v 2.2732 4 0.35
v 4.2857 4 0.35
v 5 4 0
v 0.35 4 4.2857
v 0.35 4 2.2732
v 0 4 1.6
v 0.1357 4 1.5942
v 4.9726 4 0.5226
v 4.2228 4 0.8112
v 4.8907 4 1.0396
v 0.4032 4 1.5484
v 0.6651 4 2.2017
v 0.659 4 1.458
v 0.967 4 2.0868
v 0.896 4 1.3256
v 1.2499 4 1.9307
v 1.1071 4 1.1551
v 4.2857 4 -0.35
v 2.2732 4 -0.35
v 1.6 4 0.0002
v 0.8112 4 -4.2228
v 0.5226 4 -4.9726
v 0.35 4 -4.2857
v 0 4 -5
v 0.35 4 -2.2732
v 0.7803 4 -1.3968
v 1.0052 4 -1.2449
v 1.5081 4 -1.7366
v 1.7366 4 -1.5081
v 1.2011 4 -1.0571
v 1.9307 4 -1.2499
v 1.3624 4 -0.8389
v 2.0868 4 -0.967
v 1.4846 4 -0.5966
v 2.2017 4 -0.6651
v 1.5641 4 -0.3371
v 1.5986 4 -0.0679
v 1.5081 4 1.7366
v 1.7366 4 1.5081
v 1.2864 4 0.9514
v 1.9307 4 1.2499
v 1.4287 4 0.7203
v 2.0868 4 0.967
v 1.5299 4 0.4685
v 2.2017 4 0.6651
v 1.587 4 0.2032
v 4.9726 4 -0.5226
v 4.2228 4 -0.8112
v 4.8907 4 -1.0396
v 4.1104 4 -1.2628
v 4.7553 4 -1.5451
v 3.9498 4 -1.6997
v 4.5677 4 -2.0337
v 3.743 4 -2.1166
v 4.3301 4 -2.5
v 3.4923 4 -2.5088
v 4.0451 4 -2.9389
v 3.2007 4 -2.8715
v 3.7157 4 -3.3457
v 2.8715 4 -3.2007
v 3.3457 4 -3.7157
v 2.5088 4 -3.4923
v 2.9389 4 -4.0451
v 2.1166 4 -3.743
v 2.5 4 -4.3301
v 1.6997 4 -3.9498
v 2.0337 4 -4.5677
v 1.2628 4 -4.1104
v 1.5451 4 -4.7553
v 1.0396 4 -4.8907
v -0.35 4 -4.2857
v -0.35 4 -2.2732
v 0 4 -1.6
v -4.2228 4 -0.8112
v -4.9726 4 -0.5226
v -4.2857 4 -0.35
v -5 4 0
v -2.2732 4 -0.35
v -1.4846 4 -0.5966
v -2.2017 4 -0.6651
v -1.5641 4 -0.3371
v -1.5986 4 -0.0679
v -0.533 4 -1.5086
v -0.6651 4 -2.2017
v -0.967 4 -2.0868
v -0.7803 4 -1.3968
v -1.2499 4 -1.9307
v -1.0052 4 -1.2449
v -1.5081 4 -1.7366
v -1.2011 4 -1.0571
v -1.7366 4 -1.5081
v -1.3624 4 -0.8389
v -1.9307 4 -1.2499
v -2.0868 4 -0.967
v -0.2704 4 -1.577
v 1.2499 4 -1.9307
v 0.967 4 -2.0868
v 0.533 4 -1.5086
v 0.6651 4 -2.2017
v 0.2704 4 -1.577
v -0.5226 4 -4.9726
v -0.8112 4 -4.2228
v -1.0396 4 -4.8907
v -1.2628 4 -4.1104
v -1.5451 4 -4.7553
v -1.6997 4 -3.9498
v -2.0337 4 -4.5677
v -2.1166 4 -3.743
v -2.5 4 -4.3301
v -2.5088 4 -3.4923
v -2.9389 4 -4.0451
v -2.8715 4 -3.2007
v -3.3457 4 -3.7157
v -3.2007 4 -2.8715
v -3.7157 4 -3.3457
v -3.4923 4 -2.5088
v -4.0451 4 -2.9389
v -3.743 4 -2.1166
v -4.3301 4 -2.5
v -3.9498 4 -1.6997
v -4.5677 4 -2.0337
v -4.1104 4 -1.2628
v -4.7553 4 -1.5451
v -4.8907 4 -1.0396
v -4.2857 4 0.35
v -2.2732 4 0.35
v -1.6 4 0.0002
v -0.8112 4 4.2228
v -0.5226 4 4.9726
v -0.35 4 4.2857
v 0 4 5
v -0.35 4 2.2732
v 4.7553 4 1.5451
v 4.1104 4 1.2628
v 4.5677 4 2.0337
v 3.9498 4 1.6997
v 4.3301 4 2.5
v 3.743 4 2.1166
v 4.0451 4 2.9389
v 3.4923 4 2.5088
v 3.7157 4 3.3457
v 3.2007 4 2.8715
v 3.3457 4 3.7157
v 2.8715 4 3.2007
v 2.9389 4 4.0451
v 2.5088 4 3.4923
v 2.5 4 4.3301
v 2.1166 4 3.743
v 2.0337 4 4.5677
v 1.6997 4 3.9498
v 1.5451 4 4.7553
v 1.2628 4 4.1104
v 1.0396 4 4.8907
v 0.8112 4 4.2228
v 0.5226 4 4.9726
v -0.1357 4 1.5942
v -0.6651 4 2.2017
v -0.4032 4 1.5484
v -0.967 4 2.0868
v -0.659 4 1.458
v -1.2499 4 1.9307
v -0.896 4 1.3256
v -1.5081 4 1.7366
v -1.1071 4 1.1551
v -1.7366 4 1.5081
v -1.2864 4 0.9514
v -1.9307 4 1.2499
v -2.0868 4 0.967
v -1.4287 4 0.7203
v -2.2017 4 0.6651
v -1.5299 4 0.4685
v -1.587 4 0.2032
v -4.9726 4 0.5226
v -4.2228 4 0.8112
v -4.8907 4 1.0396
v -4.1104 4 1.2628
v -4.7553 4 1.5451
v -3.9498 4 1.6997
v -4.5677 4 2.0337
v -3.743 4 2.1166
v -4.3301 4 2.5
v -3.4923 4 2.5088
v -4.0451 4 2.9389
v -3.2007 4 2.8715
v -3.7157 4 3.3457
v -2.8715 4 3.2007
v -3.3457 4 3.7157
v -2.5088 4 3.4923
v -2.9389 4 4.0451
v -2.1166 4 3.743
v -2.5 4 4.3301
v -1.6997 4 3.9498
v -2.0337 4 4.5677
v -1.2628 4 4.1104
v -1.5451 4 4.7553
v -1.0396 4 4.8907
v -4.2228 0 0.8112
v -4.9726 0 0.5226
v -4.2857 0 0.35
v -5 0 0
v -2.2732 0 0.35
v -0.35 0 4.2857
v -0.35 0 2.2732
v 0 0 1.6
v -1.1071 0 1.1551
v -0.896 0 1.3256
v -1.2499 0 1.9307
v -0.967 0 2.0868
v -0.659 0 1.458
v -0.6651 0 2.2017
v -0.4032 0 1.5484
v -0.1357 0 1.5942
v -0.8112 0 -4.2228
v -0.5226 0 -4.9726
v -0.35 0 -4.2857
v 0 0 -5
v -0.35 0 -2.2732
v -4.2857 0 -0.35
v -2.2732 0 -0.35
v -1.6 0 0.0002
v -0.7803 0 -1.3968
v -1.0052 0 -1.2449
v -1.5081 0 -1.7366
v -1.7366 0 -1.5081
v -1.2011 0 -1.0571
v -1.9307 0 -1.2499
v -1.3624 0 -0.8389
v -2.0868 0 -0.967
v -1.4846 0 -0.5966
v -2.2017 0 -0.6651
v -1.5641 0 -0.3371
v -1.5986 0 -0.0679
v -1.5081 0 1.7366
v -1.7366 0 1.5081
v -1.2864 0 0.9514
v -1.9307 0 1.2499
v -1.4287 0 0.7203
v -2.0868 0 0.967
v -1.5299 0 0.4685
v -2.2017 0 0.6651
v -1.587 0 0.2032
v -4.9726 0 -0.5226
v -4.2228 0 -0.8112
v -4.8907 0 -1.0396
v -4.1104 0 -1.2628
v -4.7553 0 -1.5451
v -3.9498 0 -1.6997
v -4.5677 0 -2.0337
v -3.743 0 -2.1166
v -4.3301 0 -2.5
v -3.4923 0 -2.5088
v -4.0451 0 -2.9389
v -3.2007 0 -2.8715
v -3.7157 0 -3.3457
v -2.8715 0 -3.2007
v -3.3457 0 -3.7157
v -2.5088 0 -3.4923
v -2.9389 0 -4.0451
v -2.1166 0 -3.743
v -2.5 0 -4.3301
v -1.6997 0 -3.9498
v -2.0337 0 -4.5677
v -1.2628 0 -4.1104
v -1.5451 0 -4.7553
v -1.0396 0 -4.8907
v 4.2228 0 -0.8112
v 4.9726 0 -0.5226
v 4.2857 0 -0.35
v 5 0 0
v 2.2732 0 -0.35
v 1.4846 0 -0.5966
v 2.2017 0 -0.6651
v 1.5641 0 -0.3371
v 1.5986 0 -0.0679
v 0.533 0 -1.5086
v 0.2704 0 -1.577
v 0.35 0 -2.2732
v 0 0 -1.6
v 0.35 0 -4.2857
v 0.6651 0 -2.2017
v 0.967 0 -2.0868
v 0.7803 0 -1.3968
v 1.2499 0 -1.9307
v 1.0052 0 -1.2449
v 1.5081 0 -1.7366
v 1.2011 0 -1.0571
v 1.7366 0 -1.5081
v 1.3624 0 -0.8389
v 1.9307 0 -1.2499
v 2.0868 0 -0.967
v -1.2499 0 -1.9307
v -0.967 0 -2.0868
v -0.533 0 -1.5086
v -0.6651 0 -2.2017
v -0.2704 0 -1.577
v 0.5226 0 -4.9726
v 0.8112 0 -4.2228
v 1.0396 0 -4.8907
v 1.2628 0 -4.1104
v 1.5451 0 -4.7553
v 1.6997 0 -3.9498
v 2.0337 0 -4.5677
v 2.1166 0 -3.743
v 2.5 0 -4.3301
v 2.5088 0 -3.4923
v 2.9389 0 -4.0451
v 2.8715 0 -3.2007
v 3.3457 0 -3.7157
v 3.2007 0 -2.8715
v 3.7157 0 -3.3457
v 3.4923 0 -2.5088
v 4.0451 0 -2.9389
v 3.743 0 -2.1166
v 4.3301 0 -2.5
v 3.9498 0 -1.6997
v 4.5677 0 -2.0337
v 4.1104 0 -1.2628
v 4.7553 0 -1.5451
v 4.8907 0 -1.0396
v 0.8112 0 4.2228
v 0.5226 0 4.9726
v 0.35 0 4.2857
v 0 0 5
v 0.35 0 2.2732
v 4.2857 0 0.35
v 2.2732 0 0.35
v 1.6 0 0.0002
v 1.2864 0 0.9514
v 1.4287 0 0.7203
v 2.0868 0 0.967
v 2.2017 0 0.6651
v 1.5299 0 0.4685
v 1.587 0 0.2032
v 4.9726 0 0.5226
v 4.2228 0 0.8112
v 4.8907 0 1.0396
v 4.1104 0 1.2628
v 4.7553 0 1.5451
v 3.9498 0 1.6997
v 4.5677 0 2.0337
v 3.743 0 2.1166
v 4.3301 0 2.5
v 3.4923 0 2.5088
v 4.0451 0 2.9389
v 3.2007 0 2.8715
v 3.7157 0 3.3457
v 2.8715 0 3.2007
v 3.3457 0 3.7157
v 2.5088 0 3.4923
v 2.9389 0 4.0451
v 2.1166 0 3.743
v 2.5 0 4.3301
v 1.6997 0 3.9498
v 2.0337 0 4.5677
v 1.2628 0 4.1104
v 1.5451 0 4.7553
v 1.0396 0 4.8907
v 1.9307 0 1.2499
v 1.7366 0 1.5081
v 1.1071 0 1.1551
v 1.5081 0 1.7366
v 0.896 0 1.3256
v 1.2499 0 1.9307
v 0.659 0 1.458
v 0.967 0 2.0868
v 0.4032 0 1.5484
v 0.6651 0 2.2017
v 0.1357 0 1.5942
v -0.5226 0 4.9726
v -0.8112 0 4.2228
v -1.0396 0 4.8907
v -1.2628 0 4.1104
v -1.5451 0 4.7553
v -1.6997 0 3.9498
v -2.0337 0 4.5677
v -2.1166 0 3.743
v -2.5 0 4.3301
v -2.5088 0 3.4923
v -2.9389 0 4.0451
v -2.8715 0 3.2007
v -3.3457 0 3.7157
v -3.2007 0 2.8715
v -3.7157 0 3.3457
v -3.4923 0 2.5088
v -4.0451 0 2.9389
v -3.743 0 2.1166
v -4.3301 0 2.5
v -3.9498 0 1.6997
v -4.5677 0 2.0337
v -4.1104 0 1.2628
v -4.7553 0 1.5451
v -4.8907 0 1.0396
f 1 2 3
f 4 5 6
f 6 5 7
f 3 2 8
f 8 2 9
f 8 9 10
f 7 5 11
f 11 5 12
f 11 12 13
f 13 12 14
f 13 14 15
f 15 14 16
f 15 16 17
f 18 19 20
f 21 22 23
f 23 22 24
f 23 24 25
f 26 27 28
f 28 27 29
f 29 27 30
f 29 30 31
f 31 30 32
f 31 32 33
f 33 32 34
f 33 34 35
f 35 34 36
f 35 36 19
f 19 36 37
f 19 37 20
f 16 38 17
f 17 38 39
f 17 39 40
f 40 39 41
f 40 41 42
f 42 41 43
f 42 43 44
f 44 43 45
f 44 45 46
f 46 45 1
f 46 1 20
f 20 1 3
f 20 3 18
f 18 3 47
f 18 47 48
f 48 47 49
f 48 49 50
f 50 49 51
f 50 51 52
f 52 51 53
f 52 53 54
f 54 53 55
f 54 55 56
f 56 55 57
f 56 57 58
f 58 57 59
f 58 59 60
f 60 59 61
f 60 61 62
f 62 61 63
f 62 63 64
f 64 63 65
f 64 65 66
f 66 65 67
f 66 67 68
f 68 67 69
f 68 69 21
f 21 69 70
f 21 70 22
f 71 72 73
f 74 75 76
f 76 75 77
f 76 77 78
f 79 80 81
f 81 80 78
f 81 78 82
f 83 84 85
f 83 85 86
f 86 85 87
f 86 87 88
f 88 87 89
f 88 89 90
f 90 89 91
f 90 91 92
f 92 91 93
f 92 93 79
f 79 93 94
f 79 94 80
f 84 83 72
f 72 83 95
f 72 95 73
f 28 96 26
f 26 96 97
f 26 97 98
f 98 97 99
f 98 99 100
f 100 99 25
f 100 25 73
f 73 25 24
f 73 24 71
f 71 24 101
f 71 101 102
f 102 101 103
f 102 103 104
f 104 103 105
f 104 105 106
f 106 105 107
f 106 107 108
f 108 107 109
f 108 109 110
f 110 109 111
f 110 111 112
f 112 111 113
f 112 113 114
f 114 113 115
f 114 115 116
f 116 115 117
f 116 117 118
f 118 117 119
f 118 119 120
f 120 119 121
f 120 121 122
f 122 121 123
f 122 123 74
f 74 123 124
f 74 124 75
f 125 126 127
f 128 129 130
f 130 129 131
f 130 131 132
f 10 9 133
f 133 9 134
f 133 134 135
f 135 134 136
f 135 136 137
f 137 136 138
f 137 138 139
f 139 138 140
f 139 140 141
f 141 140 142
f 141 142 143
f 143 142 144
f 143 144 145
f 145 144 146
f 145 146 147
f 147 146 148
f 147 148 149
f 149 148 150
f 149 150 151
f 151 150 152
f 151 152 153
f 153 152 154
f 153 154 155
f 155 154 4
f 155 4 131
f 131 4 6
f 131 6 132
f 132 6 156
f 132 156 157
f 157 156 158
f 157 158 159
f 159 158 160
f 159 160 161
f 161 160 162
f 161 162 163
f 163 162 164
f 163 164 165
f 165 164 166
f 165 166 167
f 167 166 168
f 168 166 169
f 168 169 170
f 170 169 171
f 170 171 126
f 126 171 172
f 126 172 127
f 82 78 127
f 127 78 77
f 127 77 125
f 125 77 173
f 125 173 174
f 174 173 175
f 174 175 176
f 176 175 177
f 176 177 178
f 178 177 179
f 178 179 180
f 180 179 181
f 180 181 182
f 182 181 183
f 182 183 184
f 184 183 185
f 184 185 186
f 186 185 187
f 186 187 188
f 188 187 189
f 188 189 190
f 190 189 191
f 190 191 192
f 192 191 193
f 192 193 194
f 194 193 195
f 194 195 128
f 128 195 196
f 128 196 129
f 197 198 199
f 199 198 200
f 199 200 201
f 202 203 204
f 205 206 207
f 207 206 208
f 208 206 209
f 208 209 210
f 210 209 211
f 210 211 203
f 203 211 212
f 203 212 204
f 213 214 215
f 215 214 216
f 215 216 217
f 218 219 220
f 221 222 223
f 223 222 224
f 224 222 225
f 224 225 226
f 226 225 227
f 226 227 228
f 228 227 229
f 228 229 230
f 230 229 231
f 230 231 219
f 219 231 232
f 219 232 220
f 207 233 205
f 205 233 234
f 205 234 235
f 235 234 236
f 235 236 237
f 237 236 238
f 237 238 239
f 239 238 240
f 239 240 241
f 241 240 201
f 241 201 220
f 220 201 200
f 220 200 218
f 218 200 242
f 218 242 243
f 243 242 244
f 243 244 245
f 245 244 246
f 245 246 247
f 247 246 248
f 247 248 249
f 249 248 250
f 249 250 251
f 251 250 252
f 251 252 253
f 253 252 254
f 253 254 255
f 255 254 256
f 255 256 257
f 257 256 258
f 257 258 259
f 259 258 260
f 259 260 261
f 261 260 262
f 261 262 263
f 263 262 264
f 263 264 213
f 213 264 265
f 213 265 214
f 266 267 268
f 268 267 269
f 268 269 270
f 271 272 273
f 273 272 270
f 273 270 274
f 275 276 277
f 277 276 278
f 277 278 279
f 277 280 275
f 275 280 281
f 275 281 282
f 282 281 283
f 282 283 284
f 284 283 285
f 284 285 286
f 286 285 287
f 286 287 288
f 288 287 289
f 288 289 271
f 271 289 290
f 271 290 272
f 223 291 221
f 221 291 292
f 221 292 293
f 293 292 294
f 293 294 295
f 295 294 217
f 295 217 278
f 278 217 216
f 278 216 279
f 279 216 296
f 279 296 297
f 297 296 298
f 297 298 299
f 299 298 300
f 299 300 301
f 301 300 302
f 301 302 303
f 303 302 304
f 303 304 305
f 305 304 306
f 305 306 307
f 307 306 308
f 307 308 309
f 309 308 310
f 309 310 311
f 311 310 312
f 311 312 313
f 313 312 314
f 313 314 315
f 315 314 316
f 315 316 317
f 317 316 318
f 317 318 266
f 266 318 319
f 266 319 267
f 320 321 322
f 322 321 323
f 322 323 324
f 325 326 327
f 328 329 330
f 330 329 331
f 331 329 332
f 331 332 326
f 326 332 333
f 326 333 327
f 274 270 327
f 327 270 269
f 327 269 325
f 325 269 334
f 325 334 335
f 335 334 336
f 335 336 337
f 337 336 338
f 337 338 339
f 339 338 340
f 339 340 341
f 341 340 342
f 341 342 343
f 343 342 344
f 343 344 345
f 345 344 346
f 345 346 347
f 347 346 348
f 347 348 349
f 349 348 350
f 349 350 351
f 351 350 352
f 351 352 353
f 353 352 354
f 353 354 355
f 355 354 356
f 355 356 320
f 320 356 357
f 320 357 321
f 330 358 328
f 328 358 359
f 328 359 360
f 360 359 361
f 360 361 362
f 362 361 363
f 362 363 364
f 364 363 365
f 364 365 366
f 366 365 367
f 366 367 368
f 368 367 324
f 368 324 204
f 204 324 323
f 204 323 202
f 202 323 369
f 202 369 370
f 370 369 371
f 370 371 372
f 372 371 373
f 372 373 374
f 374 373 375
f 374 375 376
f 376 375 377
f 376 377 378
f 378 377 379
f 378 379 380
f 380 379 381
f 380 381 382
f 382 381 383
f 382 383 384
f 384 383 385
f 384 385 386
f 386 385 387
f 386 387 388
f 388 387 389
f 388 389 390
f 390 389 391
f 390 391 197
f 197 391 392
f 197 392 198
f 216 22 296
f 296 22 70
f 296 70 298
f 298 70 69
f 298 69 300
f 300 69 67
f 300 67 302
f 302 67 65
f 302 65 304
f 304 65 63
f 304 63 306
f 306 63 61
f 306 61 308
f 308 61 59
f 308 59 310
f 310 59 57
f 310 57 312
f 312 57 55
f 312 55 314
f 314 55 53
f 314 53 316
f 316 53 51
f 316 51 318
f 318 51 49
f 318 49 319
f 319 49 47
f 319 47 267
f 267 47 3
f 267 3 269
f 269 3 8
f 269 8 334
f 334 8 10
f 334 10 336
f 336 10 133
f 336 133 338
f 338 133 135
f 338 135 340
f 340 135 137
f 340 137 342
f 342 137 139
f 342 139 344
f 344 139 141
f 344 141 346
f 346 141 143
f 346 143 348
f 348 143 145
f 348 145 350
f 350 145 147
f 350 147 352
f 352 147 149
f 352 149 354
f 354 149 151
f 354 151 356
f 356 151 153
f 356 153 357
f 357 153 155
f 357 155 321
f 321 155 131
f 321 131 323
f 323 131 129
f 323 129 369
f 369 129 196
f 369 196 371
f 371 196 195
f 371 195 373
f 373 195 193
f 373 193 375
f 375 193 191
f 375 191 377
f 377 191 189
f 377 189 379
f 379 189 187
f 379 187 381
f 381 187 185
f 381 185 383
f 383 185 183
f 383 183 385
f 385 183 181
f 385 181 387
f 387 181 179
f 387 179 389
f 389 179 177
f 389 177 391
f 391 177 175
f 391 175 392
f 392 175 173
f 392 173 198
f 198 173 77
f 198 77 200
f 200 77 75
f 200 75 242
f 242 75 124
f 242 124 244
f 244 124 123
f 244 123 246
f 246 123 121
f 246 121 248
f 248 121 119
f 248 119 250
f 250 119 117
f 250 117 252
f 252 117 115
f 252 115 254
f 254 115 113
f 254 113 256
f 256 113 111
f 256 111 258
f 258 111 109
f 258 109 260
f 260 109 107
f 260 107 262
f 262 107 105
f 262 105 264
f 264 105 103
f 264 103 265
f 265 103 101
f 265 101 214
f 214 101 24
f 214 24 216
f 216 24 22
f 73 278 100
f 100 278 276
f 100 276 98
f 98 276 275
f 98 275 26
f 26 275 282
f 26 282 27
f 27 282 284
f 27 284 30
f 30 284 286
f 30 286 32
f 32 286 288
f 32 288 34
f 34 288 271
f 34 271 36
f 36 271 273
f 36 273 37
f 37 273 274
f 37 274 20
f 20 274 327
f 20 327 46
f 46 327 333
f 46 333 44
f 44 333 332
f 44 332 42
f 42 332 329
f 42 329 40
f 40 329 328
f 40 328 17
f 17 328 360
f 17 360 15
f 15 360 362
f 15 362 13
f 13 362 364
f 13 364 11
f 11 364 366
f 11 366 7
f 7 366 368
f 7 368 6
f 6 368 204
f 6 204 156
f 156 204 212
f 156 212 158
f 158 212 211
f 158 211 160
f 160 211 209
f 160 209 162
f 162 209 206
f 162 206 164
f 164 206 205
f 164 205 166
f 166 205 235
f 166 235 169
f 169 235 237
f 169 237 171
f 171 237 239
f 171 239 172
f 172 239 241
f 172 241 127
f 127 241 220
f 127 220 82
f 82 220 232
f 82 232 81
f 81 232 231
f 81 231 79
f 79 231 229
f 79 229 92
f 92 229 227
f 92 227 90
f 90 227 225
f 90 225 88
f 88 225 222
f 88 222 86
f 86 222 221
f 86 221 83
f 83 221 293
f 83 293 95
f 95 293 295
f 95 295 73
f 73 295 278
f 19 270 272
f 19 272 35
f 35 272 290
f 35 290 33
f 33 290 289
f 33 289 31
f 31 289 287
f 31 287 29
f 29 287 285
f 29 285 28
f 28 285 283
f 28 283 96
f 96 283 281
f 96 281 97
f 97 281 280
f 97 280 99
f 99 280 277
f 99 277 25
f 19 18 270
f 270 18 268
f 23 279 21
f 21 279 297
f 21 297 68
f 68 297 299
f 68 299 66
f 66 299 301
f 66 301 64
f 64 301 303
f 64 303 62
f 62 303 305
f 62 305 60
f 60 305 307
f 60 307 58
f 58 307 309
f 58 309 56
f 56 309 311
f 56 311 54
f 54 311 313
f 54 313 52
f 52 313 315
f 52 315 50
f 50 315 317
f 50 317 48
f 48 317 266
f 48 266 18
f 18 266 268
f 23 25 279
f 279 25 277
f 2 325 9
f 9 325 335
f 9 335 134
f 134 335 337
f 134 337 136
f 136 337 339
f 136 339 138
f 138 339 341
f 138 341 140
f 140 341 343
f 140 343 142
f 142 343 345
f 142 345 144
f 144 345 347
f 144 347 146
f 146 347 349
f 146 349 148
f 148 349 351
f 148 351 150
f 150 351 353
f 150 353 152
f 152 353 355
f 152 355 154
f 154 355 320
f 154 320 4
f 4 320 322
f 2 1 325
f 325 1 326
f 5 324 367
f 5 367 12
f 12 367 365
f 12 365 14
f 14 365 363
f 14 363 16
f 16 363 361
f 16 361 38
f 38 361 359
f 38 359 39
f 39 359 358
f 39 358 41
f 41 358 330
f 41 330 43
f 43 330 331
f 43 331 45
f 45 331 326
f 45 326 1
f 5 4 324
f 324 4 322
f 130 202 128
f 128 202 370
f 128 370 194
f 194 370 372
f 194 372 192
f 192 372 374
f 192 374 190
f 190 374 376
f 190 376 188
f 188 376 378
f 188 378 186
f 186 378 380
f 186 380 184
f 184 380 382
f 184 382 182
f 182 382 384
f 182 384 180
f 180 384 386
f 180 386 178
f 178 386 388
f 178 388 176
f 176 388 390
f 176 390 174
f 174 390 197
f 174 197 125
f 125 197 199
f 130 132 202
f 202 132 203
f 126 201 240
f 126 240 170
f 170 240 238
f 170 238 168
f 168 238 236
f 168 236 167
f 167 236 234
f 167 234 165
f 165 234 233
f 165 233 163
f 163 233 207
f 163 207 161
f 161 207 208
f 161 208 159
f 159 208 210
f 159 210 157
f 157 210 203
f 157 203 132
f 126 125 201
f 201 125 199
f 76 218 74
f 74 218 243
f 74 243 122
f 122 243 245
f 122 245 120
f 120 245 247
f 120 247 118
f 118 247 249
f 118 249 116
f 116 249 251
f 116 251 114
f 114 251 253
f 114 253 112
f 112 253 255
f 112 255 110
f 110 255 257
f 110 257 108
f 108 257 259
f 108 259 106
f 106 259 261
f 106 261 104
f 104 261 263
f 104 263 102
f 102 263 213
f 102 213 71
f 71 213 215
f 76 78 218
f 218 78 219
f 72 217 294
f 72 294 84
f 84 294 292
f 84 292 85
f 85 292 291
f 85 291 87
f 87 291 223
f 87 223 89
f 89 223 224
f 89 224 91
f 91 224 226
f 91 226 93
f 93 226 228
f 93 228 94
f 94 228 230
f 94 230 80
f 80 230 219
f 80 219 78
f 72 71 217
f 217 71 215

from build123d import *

# Parameters (mm, degrees)
SKETCH_1_R      = 5
SKETCH_1_R_2    = 1.6
EXTRUDE_1_DEPTH = 4


with BuildPart() as part:
    # 草图1 → 凸台-拉伸1 (new body)
    with BuildSketch(Plane(origin=(0, 0, 0), x_dir=(1, 0, 0), z_dir=(0, 1, 0))):
        with Locations(Location((0, 0, 0), (0, 0, 270))):
            Circle(SKETCH_1_R)
        with Locations(Location((0, 0, 0), (0, 0, 270))):
            Circle(SKETCH_1_R_2, mode=Mode.SUBTRACT)
        with BuildLine():
            Line((2.273213584, 0.35), (4.285732143, 0.35))
            ThreePointArc((4.285732143, 0.35), (3.040559159, 3.040559159), (0.35, 4.285732143))
            Line((0.35, 4.285732143), (0.35, 2.273213584))
            ThreePointArc((0.35, 2.273213584), (1.626345597, 1.626345597), (2.273213584, 0.35))
        make_face(mode=Mode.SUBTRACT)
        with BuildLine():
            Line((4.285732143, -0.35), (2.273213584, -0.35))
            ThreePointArc((2.273213584, -0.35), (1.626345597, -1.626345597), (0.35, -2.273213584))
            Line((0.35, -2.273213584), (0.35, -4.285732143))
            ThreePointArc((0.35, -4.285732143), (3.040559159, -3.040559159), (4.285732143, -0.35))
        make_face(mode=Mode.SUBTRACT)
        with BuildLine():
            Line((-0.35, -4.285732143), (-0.35, -2.273213584))
            ThreePointArc((-0.35, -2.273213584), (-1.626345597, -1.626345597), (-2.273213584, -0.35))
            Line((-2.273213584, -0.35), (-4.285732143, -0.35))
            ThreePointArc((-4.285732143, -0.35), (-3.040559159, -3.040559159), (-0.35, -4.285732143))
        make_face(mode=Mode.SUBTRACT)
        with BuildLine():
            Line((-4.285732143, 0.35), (-2.273213584, 0.35))
            ThreePointArc((-2.273213584, 0.35), (-1.626345597, 1.626345597), (-0.35, 2.273213584))
            Line((-0.35, 2.273213584), (-0.35, 4.285732143))
            ThreePointArc((-0.35, 4.285732143), (-3.040559159, 3.040559159), (-4.285732143, 0.35))
        make_face(mode=Mode.SUBTRACT)
    extrude(amount=EXTRUDE_1_DEPTH)


solid = part.part
